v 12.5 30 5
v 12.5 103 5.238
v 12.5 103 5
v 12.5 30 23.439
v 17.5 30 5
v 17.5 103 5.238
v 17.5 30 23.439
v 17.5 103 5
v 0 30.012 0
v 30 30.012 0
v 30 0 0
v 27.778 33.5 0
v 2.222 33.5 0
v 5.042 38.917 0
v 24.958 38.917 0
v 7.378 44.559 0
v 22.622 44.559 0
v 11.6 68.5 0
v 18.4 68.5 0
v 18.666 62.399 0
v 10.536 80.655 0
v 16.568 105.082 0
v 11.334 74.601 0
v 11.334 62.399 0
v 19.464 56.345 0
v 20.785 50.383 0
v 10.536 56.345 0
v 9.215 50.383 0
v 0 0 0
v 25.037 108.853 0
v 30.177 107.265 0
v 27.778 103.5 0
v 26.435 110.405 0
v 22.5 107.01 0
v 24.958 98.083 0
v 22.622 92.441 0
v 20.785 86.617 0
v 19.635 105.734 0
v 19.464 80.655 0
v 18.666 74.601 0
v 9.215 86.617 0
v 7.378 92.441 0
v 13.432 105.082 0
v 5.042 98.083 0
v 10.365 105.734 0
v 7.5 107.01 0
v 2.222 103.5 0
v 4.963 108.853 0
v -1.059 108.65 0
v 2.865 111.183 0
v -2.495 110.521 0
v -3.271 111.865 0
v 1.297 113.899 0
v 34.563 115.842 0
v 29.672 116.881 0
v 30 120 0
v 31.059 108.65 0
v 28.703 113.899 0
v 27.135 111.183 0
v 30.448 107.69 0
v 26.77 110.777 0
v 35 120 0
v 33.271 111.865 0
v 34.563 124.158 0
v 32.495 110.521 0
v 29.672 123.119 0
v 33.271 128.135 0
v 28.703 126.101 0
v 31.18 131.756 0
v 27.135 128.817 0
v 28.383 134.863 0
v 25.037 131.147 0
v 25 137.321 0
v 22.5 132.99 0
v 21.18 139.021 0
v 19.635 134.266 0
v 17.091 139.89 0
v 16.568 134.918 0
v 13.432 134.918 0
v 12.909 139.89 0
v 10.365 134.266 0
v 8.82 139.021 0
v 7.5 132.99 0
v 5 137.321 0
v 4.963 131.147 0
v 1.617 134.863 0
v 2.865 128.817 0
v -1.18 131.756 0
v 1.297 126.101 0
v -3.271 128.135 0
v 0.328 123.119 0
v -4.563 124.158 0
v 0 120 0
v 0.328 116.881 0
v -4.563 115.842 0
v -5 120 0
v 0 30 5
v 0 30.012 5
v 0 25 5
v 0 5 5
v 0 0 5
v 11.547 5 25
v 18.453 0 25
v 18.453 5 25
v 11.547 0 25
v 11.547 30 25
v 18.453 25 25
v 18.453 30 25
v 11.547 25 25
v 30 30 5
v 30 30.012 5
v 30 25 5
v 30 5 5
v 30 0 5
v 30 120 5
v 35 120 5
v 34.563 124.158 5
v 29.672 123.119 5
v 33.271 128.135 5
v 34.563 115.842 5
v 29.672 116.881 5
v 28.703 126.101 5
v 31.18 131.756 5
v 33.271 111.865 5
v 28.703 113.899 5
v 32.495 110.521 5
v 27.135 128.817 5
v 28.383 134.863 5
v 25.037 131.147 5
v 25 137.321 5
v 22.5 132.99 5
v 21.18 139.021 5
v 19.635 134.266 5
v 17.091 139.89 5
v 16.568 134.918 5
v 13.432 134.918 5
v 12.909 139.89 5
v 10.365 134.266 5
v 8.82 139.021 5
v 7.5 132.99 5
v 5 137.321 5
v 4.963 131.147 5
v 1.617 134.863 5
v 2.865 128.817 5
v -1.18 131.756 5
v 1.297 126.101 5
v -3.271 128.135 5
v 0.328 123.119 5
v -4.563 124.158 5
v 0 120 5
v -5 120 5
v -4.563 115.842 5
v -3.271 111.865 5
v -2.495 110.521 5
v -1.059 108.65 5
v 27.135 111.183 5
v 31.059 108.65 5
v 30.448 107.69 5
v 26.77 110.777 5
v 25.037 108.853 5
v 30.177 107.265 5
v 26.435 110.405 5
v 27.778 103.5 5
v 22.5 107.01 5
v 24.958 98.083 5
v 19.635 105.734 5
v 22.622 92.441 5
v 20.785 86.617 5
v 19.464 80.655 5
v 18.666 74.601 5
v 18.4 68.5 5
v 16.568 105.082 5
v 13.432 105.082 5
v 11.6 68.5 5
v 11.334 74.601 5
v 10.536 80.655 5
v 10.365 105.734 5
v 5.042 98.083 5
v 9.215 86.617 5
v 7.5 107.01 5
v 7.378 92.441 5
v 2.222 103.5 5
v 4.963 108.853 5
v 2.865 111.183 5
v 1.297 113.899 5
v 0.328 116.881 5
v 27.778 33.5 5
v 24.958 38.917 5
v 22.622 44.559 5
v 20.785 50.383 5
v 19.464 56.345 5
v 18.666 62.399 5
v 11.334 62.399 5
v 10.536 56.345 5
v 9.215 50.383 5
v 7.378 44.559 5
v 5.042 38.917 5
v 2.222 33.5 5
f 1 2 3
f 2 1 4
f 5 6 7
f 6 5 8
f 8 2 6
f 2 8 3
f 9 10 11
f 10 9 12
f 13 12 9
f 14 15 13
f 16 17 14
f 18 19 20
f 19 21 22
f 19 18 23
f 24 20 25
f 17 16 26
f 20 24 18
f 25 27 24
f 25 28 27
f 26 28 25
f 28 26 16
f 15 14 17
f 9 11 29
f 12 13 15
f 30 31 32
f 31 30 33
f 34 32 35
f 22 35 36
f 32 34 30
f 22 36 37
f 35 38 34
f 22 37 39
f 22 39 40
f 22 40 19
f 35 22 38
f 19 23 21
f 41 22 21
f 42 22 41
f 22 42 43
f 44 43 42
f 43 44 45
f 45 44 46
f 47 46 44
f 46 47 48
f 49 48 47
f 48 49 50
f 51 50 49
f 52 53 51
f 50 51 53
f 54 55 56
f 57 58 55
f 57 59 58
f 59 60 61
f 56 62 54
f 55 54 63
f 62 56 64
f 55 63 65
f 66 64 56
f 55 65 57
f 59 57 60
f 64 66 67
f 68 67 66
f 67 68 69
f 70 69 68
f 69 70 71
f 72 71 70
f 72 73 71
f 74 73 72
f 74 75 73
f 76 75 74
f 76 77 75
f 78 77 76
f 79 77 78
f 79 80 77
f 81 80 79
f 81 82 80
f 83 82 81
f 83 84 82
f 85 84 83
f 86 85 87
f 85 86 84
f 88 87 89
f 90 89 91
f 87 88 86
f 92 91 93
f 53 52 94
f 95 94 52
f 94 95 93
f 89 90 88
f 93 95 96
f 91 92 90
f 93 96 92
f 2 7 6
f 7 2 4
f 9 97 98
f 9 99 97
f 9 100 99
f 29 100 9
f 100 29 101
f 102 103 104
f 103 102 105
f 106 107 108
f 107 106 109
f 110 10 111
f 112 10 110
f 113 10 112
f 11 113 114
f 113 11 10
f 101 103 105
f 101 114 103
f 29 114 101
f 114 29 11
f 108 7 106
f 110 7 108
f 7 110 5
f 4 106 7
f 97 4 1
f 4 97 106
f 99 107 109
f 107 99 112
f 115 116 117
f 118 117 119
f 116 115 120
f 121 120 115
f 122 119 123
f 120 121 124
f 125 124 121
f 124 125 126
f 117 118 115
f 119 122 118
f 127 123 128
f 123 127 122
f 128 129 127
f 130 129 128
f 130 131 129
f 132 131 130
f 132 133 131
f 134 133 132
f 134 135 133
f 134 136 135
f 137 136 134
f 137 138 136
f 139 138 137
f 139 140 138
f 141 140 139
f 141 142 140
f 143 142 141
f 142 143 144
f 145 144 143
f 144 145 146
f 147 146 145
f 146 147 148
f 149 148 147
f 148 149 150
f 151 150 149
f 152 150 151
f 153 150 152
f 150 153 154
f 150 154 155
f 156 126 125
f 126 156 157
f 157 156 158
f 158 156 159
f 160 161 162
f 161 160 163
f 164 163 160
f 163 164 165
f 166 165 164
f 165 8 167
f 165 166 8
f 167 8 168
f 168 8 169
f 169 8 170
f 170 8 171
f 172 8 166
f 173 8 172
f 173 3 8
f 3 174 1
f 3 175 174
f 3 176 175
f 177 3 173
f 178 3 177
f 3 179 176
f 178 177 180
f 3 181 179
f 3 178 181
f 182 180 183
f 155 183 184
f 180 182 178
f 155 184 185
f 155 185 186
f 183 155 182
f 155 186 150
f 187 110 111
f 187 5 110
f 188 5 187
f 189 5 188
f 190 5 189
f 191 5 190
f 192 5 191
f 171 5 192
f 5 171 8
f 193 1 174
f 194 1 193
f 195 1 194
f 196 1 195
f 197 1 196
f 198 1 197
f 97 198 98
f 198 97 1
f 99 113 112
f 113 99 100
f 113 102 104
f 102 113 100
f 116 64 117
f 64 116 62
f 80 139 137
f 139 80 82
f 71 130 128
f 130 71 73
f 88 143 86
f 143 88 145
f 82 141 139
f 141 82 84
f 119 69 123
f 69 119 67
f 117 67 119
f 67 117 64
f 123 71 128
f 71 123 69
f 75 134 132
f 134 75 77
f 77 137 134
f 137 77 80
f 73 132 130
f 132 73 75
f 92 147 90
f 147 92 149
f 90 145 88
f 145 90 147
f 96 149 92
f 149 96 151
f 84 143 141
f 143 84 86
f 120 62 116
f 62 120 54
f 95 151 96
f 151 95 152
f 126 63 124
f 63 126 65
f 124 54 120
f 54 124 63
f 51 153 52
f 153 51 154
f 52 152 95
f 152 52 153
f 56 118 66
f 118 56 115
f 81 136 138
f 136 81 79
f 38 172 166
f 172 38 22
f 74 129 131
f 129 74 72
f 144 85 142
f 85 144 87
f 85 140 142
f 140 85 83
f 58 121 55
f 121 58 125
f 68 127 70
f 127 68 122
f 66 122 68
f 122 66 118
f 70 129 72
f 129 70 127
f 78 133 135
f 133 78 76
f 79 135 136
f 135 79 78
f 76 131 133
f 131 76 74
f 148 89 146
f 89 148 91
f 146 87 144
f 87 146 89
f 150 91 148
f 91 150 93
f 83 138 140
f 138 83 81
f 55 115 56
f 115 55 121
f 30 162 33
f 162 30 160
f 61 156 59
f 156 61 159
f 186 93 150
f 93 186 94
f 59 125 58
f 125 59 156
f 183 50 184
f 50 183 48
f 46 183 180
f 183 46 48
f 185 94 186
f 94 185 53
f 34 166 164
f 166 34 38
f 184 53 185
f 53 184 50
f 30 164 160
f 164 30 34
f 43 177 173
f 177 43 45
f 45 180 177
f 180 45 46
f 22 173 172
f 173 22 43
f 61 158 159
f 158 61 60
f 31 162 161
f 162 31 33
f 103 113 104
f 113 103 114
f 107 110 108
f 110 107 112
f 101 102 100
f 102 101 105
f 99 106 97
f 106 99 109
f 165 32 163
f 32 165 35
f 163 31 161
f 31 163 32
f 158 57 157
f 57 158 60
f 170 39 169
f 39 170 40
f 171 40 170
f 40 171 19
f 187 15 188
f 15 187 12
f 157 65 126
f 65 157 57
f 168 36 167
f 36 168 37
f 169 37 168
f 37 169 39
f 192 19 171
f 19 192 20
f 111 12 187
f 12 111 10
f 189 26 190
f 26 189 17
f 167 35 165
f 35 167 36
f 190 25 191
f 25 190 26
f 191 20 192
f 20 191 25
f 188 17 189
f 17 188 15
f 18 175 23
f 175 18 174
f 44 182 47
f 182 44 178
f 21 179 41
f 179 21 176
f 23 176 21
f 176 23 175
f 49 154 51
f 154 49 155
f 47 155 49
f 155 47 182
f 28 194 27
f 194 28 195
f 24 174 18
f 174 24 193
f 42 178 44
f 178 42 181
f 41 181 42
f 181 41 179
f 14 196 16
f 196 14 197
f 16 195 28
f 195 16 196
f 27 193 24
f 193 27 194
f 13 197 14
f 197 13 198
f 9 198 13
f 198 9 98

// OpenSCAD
difference() {
	union() {
		difference() {
			translate([12.5,28,0]) cube([5,75,25]);
			rotate([-14,0,0]) translate([10,20,30]) cube([10,110,30]);
		}
		difference() {
			cube([30,30,25]);
			translate([-1,5,5]) cube([40,20,30]);
		}
		difference() {
			cube([30,120,5]);
			translate([15,120,-1]) cylinder(r=18,h=30);
		}
		difference() {
			translate([15,120,0]) cylinder(r=20,h=5);
			translate([15,120,-1]) cylinder(r=15,h=7);
		}
	}
	translate([15,120,-1]) rotate([0,0,-40]) cube([25,0.5,7]);
	translate([30,-1,5]) rotate([0,-30,0]) cube([30,40,30]);
	translate([0,-1,5]) rotate([0,-60,0]) cube([30,40,30]);
	translate([88.4,68.5,-1]) cylinder(r=70,h=10,$fn=72);
	translate([-58.4,68.5,-1]) cylinder(r=70,h=10,$fn=72);
}
